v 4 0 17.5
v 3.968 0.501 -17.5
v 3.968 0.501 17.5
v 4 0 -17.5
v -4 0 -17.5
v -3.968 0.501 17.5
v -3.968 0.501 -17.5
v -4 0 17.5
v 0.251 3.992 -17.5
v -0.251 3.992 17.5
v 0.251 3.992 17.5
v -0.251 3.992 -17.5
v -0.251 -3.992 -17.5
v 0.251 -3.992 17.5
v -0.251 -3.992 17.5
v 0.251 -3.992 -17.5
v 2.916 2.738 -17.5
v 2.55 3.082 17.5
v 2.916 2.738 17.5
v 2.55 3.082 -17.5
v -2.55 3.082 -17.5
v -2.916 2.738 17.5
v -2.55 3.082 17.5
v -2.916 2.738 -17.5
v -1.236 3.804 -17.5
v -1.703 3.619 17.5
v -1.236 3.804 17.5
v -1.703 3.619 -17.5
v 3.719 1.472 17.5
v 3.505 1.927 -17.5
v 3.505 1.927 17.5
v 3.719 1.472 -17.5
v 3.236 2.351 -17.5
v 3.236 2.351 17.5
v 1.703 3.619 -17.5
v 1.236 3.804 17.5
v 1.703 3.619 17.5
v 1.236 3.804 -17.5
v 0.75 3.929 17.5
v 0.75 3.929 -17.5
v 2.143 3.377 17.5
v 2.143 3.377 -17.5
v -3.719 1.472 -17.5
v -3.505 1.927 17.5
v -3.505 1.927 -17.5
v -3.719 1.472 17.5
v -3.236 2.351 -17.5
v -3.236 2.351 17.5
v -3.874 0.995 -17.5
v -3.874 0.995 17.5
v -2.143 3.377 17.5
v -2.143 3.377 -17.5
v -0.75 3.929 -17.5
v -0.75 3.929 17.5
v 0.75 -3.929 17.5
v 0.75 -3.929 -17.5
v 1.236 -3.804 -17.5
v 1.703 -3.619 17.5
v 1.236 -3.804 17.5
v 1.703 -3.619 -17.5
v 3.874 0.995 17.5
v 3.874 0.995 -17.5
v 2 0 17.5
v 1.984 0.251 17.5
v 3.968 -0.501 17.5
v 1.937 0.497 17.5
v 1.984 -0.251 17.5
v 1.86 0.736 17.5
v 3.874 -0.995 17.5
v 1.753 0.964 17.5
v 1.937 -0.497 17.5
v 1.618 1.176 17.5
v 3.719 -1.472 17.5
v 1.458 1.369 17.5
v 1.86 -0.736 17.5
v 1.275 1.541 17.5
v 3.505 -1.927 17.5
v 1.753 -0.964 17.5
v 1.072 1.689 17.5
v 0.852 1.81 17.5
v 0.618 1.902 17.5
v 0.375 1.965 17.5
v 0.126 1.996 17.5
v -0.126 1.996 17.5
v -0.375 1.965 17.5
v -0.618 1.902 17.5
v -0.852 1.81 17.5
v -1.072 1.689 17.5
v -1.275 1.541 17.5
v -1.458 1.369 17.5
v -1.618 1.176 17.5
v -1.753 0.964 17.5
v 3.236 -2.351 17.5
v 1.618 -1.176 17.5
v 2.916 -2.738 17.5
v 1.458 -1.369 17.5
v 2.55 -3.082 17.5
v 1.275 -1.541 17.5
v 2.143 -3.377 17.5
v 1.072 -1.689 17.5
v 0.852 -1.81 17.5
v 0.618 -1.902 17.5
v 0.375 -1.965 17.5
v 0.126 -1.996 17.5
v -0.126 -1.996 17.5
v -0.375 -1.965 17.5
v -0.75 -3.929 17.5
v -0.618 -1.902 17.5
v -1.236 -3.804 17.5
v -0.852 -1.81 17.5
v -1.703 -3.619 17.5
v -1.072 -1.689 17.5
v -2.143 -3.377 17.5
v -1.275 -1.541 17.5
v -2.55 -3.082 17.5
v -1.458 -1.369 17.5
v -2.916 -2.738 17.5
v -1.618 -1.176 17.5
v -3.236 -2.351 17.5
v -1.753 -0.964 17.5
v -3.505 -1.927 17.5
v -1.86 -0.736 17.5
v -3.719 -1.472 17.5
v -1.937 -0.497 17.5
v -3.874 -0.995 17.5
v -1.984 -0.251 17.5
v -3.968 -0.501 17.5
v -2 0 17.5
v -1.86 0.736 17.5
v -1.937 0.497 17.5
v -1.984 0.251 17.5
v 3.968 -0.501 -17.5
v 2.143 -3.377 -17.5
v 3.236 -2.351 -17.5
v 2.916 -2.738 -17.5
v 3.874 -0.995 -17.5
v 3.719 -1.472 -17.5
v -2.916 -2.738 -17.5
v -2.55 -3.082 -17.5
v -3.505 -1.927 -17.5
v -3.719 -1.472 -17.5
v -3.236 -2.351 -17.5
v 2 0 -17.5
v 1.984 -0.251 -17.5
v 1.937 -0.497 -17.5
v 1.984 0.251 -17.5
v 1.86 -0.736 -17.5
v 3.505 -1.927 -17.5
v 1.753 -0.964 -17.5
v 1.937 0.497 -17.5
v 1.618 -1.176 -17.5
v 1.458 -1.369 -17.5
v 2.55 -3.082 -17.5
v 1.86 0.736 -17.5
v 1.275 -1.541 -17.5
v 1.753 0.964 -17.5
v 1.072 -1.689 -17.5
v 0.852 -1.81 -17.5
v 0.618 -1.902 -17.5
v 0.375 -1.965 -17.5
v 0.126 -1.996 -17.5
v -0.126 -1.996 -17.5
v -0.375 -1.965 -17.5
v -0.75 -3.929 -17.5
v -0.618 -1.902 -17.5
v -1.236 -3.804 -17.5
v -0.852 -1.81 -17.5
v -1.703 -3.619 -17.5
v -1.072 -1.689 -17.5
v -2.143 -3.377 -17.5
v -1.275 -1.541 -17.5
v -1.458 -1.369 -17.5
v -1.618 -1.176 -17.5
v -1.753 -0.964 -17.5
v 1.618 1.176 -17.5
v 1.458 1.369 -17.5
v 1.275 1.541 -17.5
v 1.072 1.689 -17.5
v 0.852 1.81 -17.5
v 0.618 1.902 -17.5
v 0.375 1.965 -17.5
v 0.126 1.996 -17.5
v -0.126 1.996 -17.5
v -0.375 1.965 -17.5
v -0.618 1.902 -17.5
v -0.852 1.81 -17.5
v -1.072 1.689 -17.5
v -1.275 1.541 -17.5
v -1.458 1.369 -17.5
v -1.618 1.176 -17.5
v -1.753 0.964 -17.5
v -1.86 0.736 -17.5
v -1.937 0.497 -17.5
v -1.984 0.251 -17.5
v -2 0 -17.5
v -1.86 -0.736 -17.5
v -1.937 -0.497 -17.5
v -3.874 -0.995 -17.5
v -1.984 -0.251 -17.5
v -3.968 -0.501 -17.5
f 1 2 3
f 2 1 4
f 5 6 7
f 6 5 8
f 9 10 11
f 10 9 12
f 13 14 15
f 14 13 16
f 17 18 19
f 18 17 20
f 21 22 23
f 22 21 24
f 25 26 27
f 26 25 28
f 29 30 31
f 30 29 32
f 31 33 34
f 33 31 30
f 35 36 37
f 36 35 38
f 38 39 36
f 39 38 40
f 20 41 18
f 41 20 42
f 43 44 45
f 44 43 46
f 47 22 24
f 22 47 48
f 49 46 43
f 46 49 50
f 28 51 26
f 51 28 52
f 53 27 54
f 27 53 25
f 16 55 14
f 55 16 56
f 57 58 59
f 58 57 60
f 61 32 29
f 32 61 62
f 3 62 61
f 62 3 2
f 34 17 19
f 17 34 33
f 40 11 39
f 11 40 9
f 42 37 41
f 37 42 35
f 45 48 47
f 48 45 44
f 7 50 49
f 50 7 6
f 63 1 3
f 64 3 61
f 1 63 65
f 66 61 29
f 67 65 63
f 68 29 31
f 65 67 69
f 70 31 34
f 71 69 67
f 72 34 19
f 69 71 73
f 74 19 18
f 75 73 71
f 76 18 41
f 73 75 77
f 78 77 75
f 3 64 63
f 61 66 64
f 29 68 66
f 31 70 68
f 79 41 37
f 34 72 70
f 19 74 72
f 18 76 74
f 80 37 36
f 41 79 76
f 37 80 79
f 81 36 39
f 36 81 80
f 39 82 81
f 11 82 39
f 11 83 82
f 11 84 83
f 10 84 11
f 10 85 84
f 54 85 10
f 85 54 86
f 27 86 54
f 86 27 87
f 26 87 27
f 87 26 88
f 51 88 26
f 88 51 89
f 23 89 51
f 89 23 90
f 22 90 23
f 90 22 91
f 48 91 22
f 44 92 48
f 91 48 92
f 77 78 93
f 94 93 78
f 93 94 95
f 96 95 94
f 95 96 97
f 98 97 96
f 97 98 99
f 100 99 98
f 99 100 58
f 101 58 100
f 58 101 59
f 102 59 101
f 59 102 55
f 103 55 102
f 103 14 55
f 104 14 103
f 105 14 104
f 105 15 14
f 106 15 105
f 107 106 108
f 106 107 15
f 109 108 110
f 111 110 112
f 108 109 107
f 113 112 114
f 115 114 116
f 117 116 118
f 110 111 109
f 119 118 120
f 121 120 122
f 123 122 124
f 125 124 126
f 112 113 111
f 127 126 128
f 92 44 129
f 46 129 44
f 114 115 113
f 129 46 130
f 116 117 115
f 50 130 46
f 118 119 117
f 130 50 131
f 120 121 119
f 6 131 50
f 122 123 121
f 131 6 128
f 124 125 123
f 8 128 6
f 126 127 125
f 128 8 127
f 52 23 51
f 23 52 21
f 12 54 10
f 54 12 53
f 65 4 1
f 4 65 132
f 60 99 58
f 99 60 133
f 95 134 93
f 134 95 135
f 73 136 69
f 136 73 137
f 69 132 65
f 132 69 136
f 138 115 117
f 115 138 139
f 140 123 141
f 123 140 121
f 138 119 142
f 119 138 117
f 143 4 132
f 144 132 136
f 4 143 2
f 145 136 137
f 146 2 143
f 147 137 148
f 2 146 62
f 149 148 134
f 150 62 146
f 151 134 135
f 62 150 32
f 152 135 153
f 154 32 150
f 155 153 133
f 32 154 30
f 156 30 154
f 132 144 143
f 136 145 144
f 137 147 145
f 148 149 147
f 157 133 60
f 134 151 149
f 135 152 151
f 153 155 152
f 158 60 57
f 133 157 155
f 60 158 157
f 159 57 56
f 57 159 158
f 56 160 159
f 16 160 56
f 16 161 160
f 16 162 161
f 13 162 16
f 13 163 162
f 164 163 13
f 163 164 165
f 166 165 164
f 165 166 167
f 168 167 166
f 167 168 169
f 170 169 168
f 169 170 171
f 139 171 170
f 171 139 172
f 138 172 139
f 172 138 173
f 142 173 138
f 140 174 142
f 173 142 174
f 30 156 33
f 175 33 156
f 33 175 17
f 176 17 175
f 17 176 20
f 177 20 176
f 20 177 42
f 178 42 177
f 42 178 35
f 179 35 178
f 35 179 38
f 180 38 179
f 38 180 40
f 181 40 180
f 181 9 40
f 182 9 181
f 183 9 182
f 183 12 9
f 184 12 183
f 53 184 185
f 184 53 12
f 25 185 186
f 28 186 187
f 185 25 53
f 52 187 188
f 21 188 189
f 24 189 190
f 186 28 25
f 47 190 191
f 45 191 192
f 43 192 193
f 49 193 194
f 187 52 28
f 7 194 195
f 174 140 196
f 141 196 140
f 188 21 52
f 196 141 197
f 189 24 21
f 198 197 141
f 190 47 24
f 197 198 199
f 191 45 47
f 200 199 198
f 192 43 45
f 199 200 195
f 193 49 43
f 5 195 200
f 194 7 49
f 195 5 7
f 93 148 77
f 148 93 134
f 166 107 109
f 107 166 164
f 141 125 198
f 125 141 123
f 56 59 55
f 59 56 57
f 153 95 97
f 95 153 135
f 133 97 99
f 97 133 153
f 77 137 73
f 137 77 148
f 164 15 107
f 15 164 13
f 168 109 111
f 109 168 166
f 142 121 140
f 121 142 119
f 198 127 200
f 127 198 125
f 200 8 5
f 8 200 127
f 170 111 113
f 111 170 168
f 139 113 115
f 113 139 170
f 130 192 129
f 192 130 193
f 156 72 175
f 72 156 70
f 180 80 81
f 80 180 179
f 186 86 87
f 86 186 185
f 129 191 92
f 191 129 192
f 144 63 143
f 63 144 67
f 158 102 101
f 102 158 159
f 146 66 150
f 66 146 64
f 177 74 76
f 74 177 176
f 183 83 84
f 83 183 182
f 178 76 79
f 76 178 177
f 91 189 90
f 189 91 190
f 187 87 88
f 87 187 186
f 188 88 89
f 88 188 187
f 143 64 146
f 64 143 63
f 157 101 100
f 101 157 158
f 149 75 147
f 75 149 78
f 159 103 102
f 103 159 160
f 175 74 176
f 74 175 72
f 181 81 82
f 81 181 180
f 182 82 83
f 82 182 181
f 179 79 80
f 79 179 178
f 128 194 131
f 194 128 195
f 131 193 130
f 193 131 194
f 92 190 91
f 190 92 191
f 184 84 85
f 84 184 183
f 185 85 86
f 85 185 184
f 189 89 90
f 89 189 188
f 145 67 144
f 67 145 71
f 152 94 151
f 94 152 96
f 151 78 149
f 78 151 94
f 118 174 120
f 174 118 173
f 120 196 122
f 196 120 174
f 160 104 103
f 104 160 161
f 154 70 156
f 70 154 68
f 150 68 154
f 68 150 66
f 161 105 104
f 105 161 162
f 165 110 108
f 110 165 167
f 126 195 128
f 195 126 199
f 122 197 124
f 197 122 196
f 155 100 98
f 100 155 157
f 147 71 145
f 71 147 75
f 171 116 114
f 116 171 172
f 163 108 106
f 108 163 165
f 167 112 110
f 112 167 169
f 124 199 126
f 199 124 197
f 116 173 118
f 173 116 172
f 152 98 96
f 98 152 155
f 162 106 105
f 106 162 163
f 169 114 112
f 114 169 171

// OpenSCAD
$fn = 50;


difference() {
	union() {
		translate(v = [0, 0, -17.5000000000]) {
			cylinder(h = 35, r = 4.0000000000);
		}
	}
	union() {
		translate(v = [0, 0, -100.0000000000]) {
			cylinder(h = 200, r = 2);
		}
	}
}
